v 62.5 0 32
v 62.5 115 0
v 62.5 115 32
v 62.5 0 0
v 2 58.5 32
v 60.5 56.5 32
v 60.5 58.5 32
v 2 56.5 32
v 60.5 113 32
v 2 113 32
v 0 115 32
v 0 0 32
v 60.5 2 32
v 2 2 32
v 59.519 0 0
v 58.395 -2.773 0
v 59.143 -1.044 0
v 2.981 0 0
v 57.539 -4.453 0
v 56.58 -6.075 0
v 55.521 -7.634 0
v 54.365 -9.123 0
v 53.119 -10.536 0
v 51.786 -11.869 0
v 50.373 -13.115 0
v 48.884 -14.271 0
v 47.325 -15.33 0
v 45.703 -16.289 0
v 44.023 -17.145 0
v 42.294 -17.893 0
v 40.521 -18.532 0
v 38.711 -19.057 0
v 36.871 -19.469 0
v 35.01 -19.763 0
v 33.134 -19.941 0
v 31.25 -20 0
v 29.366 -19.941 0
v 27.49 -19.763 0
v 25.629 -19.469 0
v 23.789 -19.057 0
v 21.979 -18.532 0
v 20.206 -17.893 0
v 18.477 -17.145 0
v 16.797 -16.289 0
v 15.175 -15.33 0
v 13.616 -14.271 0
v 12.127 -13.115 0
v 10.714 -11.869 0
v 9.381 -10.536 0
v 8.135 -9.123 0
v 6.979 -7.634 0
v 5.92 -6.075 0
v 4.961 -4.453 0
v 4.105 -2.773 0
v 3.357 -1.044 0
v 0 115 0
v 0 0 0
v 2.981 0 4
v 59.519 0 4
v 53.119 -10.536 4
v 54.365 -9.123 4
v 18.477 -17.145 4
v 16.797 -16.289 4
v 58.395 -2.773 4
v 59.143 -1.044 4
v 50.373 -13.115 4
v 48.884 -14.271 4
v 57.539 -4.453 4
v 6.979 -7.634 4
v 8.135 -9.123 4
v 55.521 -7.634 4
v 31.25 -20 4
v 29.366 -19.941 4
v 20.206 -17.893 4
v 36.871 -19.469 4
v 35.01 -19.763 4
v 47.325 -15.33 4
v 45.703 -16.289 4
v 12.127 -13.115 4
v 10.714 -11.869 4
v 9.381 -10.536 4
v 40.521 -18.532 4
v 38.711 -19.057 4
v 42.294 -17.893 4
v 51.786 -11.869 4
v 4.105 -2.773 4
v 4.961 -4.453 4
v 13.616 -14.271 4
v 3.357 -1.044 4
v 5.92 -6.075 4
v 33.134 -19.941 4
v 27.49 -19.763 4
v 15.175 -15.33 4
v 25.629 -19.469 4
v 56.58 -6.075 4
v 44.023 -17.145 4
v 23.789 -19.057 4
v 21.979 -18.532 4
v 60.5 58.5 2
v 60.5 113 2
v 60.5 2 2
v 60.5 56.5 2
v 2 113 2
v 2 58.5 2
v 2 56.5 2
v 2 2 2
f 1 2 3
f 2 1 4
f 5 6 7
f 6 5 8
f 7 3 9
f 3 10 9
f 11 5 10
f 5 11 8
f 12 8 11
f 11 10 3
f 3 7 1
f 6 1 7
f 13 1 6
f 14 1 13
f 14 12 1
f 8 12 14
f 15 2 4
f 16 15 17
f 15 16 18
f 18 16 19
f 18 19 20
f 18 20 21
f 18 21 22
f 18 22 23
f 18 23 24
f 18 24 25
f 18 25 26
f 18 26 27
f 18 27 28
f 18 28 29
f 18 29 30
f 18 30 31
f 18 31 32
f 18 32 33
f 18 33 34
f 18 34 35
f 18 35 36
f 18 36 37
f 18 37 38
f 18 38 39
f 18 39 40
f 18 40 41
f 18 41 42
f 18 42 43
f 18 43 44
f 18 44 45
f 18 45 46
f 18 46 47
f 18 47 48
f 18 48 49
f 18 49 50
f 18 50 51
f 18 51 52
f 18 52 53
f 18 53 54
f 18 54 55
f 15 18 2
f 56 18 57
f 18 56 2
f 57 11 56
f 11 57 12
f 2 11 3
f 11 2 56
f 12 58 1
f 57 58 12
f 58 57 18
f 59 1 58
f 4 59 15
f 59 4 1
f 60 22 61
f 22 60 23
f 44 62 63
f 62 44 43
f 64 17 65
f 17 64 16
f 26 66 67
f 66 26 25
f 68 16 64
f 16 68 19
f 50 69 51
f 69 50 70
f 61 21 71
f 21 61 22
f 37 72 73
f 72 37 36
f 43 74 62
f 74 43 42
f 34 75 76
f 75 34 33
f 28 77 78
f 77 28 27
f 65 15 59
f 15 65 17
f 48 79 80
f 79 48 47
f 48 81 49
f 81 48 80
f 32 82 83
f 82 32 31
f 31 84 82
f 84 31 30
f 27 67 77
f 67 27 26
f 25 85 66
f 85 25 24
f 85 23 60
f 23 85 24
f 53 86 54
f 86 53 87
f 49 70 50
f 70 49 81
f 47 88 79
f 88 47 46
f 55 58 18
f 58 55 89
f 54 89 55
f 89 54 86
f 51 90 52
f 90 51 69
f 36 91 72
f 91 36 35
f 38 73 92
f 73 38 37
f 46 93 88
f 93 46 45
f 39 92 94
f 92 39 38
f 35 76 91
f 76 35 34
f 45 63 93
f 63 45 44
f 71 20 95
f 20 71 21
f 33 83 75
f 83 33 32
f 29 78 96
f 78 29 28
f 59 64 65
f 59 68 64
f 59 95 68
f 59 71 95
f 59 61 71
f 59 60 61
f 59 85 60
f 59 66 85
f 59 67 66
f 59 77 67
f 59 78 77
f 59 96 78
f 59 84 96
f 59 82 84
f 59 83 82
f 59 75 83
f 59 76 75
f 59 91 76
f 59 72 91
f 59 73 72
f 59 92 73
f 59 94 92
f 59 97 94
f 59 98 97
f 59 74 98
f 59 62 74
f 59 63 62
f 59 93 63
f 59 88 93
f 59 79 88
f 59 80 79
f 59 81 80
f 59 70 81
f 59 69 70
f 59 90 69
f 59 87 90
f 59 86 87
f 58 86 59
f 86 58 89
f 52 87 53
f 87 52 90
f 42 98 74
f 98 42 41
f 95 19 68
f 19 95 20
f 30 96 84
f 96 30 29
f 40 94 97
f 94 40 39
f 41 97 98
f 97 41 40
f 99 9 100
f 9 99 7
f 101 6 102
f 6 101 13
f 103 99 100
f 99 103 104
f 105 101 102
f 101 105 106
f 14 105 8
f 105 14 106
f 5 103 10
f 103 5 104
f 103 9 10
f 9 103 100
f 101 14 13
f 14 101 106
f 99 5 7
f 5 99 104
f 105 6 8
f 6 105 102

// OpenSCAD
h1 = 32.0;
h2 = 32.0;
lg = 115.0;
wi = 62.5;
$fn = 100;

union() {
    difference(){
        union() {
            cube([wi, lg, h1], center = false);
            translate([wi/2, 10, 0]) {
                cylinder(h=4, r=30, center = false);
            }
        }
        translate([2,2,2]){
            cube([wi-4, lg-4, h1], center = false);
        }
    };
    translate([0, lg/2-1, 0]) {
        cube([wi, 2, h2], center = false);
    }
};
